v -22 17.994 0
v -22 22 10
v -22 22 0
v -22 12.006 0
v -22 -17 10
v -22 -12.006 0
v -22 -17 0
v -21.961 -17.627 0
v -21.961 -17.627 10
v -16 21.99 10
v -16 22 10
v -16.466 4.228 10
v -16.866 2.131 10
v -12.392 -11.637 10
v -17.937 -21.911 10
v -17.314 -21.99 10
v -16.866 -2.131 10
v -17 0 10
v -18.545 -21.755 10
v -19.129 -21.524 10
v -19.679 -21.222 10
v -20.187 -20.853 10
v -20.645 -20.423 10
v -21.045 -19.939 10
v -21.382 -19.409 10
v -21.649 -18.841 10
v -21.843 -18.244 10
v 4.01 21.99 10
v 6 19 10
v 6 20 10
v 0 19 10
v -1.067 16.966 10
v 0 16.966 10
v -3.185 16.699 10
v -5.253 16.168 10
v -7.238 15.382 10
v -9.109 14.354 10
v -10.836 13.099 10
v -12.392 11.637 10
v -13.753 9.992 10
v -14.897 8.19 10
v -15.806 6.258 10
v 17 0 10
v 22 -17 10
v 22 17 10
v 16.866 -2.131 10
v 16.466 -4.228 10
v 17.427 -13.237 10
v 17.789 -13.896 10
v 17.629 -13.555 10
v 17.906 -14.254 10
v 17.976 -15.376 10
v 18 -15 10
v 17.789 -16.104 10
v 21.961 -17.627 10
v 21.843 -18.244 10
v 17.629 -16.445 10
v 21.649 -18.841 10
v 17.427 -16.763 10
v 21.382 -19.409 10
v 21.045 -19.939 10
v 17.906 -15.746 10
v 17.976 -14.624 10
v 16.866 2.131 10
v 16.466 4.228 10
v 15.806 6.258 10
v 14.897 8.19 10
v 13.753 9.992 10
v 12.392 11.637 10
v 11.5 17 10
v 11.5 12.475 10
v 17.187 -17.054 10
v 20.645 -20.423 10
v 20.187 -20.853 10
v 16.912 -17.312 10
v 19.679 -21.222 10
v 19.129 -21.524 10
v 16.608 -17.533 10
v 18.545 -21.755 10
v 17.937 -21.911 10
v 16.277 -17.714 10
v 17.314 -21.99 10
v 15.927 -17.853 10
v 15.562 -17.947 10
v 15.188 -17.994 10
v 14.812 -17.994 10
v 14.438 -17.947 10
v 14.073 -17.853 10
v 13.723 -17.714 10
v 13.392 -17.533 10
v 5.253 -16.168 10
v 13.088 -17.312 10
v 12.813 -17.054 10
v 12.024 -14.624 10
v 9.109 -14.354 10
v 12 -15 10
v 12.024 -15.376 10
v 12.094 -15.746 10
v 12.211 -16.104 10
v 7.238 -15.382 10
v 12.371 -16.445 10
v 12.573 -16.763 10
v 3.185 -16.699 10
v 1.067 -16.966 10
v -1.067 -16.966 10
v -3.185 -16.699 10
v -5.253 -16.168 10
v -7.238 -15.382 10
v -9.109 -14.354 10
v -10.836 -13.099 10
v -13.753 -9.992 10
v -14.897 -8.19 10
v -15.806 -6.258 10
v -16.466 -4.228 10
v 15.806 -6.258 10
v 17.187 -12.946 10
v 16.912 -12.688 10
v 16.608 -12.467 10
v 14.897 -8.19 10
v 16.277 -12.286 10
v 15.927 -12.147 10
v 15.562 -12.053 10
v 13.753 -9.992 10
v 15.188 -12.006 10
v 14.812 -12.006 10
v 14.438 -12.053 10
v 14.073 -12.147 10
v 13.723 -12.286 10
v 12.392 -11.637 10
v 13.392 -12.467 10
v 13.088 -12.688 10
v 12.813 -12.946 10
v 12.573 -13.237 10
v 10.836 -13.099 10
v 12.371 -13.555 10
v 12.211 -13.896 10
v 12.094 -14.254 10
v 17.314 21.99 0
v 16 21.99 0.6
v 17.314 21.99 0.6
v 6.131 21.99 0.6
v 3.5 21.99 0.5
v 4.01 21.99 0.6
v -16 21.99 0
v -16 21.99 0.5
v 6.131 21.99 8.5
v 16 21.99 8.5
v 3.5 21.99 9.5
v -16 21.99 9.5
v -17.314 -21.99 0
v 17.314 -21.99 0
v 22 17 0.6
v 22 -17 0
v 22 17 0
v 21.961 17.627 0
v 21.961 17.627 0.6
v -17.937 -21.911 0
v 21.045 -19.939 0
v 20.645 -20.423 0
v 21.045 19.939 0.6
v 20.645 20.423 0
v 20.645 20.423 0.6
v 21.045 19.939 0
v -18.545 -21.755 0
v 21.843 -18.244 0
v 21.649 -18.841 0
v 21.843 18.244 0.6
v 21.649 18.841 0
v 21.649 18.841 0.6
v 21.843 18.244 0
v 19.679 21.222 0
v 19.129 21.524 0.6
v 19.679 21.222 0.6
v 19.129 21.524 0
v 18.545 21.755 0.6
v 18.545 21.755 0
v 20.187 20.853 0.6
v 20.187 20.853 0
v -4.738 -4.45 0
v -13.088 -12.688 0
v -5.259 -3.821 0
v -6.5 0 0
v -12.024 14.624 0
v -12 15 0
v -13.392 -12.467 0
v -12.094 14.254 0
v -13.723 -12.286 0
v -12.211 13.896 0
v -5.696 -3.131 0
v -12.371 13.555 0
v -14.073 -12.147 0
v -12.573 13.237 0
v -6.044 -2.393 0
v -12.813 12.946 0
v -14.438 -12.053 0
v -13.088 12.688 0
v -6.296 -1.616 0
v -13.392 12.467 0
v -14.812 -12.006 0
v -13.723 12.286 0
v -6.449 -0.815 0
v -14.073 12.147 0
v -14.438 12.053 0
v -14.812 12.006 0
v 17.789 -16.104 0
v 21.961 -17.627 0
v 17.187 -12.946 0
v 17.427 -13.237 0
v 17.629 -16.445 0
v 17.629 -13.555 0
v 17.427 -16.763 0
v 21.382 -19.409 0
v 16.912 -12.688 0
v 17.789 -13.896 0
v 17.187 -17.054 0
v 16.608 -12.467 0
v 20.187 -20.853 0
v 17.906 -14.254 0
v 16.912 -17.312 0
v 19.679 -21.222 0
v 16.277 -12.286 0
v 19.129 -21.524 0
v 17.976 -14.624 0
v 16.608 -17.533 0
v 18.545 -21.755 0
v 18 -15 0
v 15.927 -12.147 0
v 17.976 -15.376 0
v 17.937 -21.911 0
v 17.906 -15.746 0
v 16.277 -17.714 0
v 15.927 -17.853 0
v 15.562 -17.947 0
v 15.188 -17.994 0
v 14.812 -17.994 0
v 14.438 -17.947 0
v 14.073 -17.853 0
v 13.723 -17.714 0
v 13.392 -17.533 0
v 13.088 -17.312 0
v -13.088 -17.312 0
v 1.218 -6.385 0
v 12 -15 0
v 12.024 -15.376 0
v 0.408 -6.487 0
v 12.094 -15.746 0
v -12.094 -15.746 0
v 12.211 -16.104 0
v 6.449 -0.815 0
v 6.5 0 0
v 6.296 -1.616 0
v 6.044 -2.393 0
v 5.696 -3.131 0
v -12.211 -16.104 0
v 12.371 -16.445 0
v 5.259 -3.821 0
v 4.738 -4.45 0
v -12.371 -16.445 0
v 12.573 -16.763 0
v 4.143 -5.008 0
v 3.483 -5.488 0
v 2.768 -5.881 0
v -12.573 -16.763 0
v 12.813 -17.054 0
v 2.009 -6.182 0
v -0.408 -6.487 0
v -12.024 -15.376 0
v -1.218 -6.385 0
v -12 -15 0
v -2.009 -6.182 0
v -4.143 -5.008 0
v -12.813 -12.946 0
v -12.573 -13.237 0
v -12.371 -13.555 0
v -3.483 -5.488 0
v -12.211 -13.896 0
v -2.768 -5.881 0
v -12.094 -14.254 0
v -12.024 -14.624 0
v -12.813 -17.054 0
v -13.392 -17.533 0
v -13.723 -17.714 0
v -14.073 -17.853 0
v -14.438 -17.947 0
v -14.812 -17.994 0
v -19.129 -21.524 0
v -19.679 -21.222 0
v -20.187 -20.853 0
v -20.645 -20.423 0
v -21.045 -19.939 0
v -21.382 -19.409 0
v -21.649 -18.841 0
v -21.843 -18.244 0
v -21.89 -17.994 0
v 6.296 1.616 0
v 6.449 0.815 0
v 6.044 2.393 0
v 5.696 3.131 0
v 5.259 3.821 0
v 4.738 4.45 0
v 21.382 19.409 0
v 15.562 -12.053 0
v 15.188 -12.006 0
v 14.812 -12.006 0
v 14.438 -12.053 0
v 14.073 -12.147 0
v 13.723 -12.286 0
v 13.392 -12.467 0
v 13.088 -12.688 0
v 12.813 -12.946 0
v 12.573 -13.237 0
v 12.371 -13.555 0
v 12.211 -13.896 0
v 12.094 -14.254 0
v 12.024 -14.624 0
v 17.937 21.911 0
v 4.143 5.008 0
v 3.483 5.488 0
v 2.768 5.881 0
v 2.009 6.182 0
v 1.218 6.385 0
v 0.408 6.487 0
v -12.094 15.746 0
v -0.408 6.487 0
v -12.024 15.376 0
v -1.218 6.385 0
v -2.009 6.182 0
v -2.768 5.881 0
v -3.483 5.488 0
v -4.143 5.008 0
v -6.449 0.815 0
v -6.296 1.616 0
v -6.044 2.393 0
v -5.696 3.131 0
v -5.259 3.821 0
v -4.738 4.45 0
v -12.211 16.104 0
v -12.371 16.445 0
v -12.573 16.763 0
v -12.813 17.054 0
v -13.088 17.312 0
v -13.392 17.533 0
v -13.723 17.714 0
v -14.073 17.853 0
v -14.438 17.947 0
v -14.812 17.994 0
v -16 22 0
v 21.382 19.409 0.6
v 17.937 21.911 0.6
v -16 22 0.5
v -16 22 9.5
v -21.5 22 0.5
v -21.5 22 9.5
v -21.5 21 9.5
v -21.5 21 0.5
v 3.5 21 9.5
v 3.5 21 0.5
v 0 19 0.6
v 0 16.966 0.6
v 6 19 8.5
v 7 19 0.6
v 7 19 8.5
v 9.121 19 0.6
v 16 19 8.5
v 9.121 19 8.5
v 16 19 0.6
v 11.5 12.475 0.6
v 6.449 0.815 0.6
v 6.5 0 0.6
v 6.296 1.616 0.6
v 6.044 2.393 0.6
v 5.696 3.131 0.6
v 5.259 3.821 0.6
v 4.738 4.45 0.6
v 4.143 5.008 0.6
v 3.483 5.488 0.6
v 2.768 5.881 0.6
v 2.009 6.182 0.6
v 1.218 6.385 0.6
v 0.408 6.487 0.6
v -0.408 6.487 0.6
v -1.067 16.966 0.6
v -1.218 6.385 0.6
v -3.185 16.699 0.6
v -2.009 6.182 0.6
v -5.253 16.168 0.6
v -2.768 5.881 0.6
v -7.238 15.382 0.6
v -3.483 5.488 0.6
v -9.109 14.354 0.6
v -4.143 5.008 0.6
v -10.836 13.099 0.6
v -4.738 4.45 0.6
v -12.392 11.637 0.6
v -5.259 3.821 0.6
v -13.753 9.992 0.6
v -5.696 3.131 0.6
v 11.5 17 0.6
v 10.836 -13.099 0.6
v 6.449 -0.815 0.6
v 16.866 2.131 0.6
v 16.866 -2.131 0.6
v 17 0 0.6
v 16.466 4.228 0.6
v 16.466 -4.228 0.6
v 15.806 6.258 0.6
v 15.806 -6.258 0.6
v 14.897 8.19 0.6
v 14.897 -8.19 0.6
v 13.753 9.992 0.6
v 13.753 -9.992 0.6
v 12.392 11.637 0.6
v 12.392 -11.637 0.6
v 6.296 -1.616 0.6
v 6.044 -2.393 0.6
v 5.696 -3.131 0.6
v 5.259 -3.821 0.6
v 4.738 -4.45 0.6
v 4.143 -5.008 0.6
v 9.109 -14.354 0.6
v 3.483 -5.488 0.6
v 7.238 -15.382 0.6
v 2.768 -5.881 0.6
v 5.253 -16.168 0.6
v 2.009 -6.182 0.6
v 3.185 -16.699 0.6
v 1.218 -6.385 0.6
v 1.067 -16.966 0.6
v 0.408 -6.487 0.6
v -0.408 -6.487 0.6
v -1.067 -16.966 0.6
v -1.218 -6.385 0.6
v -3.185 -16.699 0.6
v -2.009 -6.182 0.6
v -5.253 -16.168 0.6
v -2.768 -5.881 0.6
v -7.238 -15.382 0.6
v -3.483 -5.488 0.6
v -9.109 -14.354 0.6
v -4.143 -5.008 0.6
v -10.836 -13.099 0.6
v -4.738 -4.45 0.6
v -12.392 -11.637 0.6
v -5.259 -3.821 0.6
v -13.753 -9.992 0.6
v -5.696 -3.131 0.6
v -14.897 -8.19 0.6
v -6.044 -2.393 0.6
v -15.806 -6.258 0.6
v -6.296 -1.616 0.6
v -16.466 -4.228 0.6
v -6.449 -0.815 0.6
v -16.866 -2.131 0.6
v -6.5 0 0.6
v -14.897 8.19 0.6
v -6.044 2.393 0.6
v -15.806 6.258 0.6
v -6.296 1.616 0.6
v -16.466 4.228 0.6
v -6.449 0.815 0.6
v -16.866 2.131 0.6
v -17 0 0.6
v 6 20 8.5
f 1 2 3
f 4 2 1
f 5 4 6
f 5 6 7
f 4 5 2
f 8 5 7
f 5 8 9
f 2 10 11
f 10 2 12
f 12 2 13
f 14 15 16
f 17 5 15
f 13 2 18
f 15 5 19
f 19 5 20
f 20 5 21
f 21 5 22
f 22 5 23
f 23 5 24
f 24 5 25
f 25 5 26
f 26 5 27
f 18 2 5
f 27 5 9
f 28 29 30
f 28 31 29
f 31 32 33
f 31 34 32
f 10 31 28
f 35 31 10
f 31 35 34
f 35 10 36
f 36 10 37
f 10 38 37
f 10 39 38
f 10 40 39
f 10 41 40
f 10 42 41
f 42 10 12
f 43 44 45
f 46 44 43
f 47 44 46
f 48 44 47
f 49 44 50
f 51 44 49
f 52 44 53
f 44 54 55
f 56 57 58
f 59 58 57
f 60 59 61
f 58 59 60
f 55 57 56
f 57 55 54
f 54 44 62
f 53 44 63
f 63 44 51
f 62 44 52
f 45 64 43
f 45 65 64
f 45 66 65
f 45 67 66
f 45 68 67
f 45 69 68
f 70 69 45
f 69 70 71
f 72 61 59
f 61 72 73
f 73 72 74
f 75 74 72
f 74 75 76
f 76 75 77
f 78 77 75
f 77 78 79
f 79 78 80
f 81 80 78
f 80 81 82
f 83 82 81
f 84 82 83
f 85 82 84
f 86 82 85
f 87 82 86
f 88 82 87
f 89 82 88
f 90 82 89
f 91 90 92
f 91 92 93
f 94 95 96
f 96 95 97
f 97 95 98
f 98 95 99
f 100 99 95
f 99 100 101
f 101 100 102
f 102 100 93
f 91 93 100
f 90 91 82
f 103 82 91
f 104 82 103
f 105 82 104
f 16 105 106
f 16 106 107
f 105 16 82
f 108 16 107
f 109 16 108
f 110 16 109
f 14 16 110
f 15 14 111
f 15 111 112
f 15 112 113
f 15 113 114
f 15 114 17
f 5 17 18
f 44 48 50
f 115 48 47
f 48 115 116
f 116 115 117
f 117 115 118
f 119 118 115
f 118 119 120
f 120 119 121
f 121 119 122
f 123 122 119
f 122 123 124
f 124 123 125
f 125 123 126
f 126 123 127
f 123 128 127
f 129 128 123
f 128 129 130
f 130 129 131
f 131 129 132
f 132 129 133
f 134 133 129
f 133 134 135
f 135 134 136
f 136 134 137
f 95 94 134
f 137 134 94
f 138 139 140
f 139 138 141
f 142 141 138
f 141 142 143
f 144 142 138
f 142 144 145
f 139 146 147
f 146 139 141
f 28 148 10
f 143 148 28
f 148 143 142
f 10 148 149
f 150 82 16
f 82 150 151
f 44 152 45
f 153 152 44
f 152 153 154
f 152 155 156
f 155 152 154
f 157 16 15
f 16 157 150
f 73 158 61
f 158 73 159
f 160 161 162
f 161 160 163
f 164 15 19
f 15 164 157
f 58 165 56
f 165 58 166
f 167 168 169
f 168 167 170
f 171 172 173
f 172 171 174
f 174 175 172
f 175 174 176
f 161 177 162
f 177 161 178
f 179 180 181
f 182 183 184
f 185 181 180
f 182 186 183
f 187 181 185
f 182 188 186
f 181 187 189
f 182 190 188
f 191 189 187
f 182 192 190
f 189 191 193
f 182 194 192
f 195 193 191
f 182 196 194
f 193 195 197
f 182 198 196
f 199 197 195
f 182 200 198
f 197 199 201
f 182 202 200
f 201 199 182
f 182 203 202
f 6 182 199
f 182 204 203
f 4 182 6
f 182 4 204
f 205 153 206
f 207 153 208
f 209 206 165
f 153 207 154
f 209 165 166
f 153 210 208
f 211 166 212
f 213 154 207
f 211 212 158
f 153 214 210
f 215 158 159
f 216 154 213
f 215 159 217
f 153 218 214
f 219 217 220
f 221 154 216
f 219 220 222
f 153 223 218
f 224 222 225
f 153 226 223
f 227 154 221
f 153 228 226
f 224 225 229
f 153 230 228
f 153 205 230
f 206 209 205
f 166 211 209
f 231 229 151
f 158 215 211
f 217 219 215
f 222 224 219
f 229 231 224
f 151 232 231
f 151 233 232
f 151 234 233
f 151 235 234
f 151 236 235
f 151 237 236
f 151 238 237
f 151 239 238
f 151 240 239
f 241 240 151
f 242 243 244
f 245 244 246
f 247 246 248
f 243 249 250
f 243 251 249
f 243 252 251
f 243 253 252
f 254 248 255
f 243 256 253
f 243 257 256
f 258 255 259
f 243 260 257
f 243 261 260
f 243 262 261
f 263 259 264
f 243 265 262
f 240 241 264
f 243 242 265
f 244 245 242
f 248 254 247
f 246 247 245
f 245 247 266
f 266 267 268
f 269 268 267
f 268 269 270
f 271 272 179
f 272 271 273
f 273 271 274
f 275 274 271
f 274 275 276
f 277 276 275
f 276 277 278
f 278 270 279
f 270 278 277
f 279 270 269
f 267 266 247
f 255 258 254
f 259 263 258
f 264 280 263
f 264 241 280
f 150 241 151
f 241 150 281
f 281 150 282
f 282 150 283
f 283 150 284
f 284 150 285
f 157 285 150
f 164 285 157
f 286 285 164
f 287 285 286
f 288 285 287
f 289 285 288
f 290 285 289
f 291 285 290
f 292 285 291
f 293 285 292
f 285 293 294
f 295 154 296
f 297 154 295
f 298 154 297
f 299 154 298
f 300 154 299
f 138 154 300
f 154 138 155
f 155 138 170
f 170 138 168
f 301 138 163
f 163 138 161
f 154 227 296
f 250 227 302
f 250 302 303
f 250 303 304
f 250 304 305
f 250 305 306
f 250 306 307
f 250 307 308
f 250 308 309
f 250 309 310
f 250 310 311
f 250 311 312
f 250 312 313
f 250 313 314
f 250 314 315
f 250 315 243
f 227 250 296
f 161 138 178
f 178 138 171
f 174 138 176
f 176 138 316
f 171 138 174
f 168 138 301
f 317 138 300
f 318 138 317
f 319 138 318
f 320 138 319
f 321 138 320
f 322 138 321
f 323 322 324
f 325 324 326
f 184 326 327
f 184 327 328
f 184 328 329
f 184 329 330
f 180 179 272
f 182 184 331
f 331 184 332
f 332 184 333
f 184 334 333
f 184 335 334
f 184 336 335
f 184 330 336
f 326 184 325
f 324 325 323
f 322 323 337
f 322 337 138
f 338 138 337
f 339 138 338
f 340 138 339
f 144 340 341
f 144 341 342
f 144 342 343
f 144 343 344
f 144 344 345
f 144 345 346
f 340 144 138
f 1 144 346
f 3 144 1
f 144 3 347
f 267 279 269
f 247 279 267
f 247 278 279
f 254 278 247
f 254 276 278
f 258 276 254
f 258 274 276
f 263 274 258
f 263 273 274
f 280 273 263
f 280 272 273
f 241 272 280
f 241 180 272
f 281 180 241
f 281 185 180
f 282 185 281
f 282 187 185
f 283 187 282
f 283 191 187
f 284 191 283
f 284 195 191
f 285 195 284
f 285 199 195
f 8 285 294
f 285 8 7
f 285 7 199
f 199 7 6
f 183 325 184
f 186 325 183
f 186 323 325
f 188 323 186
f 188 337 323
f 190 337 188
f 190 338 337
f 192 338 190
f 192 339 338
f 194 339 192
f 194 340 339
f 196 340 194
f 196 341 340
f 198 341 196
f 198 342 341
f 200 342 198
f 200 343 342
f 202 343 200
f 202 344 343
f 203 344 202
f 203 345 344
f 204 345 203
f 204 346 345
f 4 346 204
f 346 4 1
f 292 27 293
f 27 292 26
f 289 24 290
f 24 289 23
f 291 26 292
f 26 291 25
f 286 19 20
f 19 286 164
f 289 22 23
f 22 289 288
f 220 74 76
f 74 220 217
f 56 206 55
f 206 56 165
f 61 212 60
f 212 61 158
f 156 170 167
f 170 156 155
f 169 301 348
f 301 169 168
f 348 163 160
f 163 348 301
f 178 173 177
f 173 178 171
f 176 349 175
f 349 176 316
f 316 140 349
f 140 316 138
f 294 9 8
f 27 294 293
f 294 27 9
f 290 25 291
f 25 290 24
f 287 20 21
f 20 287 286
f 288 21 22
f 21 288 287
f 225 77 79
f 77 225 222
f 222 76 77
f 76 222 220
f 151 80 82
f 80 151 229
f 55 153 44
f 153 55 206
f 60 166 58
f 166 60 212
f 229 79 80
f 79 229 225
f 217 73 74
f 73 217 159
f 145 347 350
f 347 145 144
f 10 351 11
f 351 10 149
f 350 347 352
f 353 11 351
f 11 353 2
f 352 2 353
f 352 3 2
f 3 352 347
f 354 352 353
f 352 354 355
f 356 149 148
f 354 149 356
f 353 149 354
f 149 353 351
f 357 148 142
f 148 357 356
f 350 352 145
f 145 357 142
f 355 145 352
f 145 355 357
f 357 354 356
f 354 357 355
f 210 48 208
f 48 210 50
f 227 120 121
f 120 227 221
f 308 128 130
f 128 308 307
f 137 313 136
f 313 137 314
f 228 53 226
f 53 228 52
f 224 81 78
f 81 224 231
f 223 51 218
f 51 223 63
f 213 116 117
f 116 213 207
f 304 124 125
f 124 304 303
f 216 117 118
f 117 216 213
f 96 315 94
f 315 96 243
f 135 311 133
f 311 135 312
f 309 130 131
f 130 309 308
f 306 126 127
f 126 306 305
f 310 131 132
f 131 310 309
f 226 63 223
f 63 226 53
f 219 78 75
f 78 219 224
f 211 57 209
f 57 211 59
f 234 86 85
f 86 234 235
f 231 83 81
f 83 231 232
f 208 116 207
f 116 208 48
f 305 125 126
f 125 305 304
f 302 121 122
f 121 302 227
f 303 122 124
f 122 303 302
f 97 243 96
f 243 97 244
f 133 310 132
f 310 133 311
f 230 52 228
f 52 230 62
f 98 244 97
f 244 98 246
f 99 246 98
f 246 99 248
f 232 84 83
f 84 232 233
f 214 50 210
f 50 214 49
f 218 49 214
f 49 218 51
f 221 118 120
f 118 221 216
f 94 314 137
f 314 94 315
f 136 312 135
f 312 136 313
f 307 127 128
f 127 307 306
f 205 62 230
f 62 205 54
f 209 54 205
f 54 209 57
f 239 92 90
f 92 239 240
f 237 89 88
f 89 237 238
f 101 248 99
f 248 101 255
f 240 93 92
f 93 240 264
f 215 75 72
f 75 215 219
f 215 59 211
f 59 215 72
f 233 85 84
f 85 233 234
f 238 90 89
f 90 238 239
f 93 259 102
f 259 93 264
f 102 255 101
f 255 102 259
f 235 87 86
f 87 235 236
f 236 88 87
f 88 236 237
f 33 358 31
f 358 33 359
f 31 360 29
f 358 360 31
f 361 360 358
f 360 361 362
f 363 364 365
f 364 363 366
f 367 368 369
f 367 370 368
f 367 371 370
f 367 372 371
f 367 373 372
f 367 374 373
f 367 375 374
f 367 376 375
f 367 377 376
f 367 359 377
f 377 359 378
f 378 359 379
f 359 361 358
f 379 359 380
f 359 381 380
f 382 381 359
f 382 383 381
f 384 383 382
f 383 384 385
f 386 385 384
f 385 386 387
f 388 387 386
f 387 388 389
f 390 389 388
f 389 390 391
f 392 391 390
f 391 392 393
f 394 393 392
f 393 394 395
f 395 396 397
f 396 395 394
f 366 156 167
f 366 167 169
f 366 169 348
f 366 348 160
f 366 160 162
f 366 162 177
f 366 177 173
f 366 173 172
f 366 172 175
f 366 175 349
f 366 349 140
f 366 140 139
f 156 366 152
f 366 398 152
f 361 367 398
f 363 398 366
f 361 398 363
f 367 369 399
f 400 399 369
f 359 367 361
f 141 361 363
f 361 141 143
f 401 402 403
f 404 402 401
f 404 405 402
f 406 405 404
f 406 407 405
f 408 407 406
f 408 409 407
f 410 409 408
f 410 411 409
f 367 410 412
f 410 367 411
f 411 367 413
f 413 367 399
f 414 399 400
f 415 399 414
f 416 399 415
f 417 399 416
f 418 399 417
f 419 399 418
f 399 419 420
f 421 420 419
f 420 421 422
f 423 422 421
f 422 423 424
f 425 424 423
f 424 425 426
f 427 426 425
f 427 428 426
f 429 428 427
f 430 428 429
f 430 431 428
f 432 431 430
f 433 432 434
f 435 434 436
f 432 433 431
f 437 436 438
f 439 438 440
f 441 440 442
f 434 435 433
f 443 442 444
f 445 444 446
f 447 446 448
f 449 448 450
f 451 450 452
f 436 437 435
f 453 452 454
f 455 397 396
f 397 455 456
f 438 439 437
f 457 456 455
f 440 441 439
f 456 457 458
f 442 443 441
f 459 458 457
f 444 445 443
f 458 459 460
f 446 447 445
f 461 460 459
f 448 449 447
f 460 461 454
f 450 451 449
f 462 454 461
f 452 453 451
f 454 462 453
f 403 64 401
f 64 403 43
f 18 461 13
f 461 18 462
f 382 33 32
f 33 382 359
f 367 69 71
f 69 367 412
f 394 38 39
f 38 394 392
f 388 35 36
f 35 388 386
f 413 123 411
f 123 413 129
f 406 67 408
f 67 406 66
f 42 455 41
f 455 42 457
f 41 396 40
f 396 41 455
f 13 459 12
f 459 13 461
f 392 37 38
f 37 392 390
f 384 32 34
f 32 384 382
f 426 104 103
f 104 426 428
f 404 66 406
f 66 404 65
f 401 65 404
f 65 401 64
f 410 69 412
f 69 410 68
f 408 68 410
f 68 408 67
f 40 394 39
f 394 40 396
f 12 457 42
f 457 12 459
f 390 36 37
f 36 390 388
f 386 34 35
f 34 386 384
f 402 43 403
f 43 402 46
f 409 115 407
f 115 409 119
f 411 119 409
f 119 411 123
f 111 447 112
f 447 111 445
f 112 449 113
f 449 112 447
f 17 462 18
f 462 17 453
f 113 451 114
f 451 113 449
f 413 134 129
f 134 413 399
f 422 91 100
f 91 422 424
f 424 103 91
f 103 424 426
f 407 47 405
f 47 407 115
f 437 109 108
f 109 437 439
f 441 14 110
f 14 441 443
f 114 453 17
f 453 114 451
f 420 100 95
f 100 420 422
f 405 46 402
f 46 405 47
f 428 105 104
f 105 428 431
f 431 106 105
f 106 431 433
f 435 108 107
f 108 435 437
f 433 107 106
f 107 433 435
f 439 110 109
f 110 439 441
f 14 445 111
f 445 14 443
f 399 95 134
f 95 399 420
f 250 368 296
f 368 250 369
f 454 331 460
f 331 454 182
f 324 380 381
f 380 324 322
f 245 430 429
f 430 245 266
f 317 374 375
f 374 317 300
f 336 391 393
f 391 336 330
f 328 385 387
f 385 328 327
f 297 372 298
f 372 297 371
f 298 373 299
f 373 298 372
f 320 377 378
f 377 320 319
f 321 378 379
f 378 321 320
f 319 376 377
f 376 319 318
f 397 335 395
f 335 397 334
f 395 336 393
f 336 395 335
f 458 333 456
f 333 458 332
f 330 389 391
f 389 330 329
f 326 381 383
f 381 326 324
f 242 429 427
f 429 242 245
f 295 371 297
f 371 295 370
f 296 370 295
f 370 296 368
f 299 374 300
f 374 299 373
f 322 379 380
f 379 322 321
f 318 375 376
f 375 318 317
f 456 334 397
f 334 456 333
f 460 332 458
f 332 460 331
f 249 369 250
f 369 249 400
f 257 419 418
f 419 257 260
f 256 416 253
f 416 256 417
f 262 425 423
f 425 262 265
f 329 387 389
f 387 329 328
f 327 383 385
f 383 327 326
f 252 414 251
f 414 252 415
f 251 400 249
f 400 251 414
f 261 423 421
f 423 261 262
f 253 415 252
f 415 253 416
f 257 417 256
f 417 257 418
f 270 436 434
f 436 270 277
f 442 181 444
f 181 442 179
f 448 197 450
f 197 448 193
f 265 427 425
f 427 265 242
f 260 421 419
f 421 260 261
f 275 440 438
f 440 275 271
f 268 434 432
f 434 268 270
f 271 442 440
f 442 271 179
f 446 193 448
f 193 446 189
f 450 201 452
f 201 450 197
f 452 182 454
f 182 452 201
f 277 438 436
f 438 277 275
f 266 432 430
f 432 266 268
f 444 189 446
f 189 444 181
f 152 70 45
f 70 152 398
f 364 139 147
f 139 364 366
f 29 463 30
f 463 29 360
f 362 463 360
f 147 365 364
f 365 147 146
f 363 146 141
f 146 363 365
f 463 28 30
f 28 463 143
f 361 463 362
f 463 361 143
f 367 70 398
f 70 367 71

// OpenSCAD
$fn = 50;


difference() {
	union() {
		hull() {
			translate(v = [-17.0000000000, 17.0000000000, 0]) {
				cylinder(h = 10, r = 5);
			}
			translate(v = [17.0000000000, 17.0000000000, 0]) {
				cylinder(h = 10, r = 5);
			}
			translate(v = [-17.0000000000, -17.0000000000, 0]) {
				cylinder(h = 10, r = 5);
			}
			translate(v = [17.0000000000, -17.0000000000, 0]) {
				cylinder(h = 10, r = 5);
			}
		}
		translate(v = [-22.0000000000, 16.0000000000, 0]) {
			cube(size = [6, 6, 10]);
		}
	}
	union() {
		translate(v = [-22.5000000000, -15.0000000000, -250.0000000000]) {
			rotate(a = [0, 0, 0]) {
				difference() {
					union() {
						hull() {
							translate(v = [7.5000000000, 0, 0]) {
								cylinder(h = 250, r = 3.0000000000, r1 = 3.0000000000, r2 = 3.0000000000);
							}
							translate(v = [-7.5000000000, 0, 0]) {
								cylinder(h = 250, r = 3.0000000000, r1 = 3.0000000000, r2 = 3.0000000000);
							}
						}
					}
					union();
				}
			}
		}
		translate(v = [-22.5000000000, 15.0000000000, -250.0000000000]) {
			rotate(a = [0, 0, 0]) {
				difference() {
					union() {
						hull() {
							translate(v = [7.5000000000, 0, 0]) {
								cylinder(h = 250, r = 3.0000000000, r1 = 3.0000000000, r2 = 3.0000000000);
							}
							translate(v = [-7.5000000000, 0, 0]) {
								cylinder(h = 250, r = 3.0000000000, r1 = 3.0000000000, r2 = 3.0000000000);
							}
						}
					}
					union();
				}
			}
		}
		translate(v = [-21.5000000000, 21.0000000000, 0.5000000000]) {
			cube(size = [25, 1, 9.0000000000]);
		}
		translate(v = [15.0000000000, -15.0000000000, -50.0000000000]) {
			cylinder(h = 100, r = 3.0000000000);
		}
		translate(v = [0.0000000000, 11.0000000000, 0.6000000000]) {
			cube(size = [11, 8, 12.4000000000]);
		}
		translate(v = [0, 0, 0.6000000000]) {
			cylinder(h = 12.4000000000, r = 17.0000000000);
		}
		translate(v = [0, 0, -5.0000000000]) {
			cylinder(h = 10, r = 6.5000000000);
		}
		translate(v = [0.0000000000, 17.0000000000, 0.6000000000]) {
			cube(size = [22.0000000000, 2, 12.4000000000]);
		}
		translate(v = [16.0000000000, 17.0000000000, 0.6000000000]) {
			cube(size = [6, 5, 12.4000000000]);
		}
		translate(v = [6.0000000000, 17.0000000000, 8.5000000000]) {
			cube(size = [16, 5, 1.5000000000]);
		}
		translate(v = [3.2500000000, 22.7500000000, 0.6000000000]) {
			rotate(a = [0, 0, -45]) {
				cube(size = [7.5000000000, 1.5000000000, 12.4000000000]);
			}
		}
		translate(v = [2.5000000000, 12.0000000000, 0.6000000000]) {
			cube(size = [9.0000000000, 5, 9.4000000000]);
		}
	}
}
